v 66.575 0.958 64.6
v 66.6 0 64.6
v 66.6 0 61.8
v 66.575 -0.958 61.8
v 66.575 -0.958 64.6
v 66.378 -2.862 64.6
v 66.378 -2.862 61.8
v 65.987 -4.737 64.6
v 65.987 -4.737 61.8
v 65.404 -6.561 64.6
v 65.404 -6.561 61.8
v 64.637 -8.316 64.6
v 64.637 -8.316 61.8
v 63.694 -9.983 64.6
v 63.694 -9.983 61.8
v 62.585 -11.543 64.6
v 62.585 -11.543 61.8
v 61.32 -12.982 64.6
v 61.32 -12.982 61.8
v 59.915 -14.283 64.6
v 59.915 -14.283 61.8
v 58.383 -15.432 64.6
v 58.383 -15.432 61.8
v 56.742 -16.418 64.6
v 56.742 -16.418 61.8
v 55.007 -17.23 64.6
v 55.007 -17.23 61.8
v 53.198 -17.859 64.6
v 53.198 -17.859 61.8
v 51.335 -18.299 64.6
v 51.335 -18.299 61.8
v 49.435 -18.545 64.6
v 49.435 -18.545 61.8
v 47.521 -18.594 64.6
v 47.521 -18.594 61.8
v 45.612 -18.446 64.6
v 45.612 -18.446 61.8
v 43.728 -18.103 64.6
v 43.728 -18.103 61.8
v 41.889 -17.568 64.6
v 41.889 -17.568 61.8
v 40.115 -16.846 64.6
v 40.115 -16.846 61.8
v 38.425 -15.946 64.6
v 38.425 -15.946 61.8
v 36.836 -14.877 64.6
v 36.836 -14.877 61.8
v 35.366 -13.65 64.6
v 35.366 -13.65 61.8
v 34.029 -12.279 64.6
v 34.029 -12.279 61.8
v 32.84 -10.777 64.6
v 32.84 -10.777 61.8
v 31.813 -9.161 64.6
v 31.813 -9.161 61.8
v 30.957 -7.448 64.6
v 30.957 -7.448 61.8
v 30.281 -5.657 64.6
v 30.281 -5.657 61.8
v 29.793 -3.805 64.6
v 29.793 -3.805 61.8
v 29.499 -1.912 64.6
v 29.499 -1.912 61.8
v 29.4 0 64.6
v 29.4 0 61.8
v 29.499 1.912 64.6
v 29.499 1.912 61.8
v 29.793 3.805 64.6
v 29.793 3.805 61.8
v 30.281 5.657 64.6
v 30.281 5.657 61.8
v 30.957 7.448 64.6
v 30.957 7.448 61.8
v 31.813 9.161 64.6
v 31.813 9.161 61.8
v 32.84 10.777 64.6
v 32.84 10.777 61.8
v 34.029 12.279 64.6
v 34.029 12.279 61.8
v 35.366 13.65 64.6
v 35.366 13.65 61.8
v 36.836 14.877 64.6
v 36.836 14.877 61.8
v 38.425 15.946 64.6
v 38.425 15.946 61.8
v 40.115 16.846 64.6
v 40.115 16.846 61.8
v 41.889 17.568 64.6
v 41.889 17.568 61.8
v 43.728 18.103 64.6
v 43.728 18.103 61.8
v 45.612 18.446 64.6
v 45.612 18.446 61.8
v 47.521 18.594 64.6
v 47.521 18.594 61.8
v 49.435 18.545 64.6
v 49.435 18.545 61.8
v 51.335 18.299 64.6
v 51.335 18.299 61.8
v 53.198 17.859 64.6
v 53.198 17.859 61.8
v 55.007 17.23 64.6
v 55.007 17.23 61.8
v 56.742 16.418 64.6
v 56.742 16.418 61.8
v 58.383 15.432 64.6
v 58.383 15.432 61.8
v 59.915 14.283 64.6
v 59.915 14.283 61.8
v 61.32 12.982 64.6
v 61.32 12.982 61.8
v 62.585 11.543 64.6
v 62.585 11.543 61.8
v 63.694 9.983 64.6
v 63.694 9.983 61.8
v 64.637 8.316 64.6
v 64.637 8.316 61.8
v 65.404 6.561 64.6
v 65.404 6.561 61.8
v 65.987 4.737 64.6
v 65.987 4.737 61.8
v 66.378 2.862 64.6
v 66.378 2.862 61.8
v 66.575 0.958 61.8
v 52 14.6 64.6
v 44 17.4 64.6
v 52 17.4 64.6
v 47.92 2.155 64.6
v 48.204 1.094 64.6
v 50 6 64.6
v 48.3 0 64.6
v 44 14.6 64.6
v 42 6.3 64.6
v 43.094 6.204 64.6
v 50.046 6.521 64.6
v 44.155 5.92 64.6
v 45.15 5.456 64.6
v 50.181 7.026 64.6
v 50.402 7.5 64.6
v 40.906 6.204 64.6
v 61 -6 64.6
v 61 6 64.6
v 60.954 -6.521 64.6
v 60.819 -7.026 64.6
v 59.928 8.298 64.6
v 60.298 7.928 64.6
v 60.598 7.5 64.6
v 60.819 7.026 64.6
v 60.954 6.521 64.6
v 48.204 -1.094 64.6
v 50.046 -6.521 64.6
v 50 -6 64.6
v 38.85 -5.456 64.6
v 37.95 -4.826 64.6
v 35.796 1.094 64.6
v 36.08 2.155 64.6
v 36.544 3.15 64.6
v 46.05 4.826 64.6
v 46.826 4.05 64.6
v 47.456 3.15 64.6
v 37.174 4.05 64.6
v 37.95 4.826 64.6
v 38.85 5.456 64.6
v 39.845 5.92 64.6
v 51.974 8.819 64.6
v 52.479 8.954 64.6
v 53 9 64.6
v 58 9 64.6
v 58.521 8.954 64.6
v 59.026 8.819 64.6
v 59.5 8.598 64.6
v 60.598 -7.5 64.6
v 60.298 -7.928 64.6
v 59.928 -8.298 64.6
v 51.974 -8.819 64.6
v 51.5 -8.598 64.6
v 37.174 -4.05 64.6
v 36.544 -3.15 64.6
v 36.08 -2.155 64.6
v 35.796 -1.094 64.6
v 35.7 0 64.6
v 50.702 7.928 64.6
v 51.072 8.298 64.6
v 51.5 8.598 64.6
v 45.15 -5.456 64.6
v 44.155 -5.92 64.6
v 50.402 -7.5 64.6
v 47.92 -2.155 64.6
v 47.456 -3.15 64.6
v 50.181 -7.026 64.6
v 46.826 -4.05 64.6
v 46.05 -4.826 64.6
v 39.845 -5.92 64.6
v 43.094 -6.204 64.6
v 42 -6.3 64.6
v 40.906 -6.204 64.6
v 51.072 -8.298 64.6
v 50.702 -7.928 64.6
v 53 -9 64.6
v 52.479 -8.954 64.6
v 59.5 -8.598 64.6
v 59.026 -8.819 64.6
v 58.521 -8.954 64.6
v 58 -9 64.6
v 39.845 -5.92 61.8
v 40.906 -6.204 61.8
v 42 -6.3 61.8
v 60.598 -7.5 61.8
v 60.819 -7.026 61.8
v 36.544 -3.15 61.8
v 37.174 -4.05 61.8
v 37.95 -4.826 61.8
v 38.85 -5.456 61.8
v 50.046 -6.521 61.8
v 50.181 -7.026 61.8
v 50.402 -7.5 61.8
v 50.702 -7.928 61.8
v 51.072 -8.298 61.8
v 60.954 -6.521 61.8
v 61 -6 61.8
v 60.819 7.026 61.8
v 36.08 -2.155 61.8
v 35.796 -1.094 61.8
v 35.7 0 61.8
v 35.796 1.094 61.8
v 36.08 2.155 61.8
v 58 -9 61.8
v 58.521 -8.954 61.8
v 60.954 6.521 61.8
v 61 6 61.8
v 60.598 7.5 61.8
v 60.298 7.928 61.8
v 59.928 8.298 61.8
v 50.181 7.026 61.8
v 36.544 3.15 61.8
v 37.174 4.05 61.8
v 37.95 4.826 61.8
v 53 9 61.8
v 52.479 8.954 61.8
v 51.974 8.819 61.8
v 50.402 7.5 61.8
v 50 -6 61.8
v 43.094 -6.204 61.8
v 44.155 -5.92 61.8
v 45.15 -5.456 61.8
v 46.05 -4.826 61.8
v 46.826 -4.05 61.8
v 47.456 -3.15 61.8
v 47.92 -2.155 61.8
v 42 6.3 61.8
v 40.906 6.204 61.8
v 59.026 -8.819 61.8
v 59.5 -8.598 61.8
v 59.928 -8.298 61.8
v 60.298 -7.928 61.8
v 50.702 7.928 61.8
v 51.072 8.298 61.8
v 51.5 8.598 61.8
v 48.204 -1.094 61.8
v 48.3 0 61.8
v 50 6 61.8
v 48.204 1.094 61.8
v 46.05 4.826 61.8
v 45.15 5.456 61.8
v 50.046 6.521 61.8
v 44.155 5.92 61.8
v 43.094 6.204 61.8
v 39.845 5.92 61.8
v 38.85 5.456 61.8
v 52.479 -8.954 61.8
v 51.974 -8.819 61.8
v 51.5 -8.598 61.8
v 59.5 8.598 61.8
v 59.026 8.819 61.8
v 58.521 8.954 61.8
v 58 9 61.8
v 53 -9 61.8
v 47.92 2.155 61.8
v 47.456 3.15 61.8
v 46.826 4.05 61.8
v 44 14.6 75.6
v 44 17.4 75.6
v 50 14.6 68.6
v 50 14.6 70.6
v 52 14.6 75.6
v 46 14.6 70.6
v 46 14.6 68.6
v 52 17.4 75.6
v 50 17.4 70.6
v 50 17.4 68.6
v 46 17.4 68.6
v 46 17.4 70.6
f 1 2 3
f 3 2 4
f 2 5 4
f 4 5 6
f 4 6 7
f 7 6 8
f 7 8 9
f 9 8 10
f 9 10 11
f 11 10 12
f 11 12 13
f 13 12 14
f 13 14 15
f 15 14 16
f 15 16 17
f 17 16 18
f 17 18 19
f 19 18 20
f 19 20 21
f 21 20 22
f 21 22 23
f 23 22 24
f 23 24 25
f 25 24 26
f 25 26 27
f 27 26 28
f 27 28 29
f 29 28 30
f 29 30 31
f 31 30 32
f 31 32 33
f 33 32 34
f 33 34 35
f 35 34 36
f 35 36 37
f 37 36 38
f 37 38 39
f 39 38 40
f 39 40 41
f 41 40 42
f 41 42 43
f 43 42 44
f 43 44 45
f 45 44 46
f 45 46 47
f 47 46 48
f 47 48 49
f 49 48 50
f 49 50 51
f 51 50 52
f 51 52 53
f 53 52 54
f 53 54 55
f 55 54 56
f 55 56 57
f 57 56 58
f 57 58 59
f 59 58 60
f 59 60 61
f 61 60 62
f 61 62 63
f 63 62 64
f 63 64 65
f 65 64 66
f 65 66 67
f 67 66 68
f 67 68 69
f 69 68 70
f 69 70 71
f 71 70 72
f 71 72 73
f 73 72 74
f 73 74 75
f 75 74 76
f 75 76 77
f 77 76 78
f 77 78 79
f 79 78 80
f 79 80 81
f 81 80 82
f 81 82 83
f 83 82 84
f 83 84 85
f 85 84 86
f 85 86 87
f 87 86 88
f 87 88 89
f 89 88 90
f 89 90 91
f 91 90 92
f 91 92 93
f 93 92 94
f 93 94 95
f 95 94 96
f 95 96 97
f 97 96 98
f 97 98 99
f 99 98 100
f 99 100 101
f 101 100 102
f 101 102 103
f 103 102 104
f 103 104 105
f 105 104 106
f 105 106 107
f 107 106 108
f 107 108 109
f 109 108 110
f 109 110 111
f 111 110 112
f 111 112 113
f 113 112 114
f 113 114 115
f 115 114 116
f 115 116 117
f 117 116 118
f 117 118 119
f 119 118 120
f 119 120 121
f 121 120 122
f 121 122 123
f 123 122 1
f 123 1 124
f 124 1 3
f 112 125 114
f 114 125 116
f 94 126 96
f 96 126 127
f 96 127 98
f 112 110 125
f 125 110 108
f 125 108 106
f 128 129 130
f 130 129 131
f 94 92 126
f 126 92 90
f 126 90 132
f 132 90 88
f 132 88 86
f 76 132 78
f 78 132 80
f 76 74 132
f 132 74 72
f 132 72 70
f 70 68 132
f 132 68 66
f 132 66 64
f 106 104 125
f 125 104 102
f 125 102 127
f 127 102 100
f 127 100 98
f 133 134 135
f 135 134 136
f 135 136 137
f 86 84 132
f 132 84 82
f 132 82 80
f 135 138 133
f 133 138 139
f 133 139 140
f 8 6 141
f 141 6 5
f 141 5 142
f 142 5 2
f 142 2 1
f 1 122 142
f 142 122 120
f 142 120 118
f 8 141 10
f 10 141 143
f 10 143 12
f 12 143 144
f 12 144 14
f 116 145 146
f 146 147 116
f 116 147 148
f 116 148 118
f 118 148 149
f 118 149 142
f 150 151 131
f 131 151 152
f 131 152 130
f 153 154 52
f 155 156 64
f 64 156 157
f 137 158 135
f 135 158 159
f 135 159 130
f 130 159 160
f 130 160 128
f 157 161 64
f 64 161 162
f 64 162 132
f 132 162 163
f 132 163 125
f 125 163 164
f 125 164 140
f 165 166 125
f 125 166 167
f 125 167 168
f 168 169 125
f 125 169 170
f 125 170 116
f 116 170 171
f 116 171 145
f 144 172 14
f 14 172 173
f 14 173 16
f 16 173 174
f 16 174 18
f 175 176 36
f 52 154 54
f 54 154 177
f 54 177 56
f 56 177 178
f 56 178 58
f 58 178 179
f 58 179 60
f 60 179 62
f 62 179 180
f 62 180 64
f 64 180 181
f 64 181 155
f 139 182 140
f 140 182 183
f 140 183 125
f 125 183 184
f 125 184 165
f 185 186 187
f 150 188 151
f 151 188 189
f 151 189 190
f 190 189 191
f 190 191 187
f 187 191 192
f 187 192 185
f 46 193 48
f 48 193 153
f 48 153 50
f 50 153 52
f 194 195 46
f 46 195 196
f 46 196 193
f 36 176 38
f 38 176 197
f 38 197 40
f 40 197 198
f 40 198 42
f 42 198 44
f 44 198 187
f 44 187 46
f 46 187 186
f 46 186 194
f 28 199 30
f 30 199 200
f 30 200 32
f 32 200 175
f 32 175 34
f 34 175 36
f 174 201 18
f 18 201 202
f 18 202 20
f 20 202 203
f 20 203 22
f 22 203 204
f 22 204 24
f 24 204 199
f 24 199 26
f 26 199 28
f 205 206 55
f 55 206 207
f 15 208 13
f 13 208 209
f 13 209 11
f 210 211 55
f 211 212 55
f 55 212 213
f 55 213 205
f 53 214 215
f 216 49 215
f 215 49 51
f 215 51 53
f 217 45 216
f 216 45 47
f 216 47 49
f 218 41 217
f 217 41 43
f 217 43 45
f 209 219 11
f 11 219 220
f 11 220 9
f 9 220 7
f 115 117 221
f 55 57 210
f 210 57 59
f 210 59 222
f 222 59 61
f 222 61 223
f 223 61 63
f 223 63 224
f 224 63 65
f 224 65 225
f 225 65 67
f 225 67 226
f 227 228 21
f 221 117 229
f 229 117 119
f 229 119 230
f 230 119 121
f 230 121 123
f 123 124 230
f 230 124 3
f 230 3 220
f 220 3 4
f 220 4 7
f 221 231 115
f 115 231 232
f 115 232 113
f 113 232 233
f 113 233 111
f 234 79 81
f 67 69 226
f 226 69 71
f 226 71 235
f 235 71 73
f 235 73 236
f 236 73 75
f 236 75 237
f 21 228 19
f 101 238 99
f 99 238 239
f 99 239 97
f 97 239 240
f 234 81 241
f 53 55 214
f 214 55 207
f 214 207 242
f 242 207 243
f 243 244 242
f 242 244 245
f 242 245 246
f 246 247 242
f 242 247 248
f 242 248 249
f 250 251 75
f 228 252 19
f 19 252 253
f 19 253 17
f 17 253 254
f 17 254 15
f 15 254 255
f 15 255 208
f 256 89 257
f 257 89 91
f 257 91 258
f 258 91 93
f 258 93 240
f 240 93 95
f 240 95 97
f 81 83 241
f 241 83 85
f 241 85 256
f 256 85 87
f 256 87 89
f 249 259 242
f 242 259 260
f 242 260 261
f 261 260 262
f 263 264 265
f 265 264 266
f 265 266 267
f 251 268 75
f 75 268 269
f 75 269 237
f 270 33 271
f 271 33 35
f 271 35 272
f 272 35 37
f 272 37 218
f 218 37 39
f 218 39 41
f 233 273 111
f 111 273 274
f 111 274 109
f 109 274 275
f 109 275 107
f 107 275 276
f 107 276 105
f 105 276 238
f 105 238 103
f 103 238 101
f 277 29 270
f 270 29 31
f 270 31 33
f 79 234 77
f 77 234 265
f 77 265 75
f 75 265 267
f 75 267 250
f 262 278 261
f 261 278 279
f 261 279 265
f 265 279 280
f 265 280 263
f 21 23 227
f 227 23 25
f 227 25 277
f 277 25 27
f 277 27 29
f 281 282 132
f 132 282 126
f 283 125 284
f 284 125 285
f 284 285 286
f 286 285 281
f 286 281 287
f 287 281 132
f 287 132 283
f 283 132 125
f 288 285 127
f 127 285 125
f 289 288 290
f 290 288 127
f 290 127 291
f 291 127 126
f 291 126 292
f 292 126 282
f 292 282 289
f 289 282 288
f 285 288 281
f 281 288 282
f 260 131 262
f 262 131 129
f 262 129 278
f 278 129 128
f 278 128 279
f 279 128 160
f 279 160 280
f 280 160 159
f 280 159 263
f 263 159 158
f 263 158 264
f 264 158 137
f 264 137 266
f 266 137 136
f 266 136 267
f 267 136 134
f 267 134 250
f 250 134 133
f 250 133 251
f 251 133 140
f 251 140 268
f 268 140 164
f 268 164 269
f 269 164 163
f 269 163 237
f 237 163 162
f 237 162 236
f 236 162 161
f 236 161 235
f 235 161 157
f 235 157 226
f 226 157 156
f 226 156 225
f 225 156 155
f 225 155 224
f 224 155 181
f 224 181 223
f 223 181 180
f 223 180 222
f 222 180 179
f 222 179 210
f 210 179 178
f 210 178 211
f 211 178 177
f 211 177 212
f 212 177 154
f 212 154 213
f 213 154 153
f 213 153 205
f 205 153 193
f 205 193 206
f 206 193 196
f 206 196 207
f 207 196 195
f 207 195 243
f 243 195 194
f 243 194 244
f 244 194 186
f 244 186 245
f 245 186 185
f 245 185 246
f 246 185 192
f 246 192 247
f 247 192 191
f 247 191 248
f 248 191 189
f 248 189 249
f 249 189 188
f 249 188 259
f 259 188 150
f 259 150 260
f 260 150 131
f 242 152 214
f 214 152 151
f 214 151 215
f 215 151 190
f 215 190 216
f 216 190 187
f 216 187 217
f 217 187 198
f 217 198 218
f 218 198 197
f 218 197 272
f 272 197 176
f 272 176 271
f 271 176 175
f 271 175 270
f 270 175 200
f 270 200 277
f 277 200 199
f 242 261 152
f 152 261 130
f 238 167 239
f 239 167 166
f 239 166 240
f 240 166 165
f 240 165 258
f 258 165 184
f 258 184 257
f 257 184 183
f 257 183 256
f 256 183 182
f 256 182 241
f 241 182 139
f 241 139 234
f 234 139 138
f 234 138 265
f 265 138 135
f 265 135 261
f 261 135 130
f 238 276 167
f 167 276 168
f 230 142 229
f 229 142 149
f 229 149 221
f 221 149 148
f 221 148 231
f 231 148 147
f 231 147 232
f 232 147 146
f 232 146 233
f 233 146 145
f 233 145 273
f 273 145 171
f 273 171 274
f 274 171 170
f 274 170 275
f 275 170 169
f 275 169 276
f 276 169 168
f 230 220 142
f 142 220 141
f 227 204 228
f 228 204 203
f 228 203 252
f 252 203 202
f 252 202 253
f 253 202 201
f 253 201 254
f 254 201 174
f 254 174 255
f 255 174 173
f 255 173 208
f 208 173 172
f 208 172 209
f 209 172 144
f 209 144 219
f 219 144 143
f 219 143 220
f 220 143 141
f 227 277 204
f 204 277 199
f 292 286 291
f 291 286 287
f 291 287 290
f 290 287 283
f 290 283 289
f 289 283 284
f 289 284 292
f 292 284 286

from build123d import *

# Parameters (mm, degrees)
SKETCH1_R                        = 18.6
CAP_DISC_DEPTH                   = 2.8
SKETCH2_W                        = 8
SKETCH2_H                        = 2.8
STRAIN_RELIEF_TAB_DEPTH          = 11
PH_ELECTRODE_BORE_DEPTH          = 71.512126617
PH_ELECTRODE_BORE_DEPTH_BACK     = 71.512126617
SKETCH3_R                        = 6.3
CABLE_AND_HOSE_WINDOW_DEPTH      = 71.512126617
CABLE_AND_HOSE_WINDOW_DEPTH_BACK = 71.512126617
ZIP_TIE_SLOT_DEPTH               = 106.59109811
ZIP_TIE_SLOT_DEPTH_BACK          = 106.59109811
SKETCH5_W                        = 4
SKETCH5_H                        = 2


with BuildPart() as part:
    # Sketch1 → Cap_disc (new body)
    with BuildSketch(Plane.XY.offset(61.8)):
        with Locations((48, 0)):
            Circle(SKETCH1_R)
    extrude(amount=CAP_DISC_DEPTH)

    # Sketch2 → Strain_relief_tab (add)
    with BuildSketch(Plane.XY.offset(64.6)):
        with Locations((48, 16)):
            Rectangle(SKETCH2_W, SKETCH2_H)
    extrude(amount=STRAIN_RELIEF_TAB_DEPTH)

    # Sketch3 → pH_electrode_bore (cut, two sides: drawn at the far end of the back side and taken through both)
    with BuildSketch(Plane.XY.offset(61.8).offset(-PH_ELECTRODE_BORE_DEPTH_BACK)):
        with Locations((42, 0)):
            Circle(SKETCH3_R)
    extrude(amount=PH_ELECTRODE_BORE_DEPTH + PH_ELECTRODE_BORE_DEPTH_BACK, mode=Mode.SUBTRACT)

    # Sketch4 → Cable_and_hose_window (cut, two sides: drawn at the far end of the back side and taken through both)
    with BuildSketch(Plane.XY.offset(61.8).offset(-CABLE_AND_HOSE_WINDOW_DEPTH_BACK)):
        with BuildLine():
            Line((53, -9), (58, -9))
            ThreePointArc((58, -9), (60.121320344, -8.121320344), (61, -6))
            Line((61, -6), (61, 6))
            ThreePointArc((61, 6), (60.121320344, 8.121320344), (58, 9))
            Line((58, 9), (53, 9))
            ThreePointArc((53, 9), (50.878679656, 8.121320344), (50, 6))
            Line((50, 6), (50, -6))
            ThreePointArc((50, -6), (50.878679656, -8.121320344), (53, -9))
        make_face()
    extrude(amount=CABLE_AND_HOSE_WINDOW_DEPTH + CABLE_AND_HOSE_WINDOW_DEPTH_BACK, mode=Mode.SUBTRACT)

    # Sketch5 → Zip_tie_slot (cut, two sides: drawn at the far end of the back side and taken through both)
    with BuildSketch(Plane(origin=(0, 13, 0), x_dir=(1, 0, 0), z_dir=(0, 1, 0)).offset(-ZIP_TIE_SLOT_DEPTH_BACK)):
        with Locations((48, -69.6)):
            Rectangle(SKETCH5_W, SKETCH5_H)
    extrude(amount=ZIP_TIE_SLOT_DEPTH + ZIP_TIE_SLOT_DEPTH_BACK, mode=Mode.SUBTRACT)


solid = part.part
